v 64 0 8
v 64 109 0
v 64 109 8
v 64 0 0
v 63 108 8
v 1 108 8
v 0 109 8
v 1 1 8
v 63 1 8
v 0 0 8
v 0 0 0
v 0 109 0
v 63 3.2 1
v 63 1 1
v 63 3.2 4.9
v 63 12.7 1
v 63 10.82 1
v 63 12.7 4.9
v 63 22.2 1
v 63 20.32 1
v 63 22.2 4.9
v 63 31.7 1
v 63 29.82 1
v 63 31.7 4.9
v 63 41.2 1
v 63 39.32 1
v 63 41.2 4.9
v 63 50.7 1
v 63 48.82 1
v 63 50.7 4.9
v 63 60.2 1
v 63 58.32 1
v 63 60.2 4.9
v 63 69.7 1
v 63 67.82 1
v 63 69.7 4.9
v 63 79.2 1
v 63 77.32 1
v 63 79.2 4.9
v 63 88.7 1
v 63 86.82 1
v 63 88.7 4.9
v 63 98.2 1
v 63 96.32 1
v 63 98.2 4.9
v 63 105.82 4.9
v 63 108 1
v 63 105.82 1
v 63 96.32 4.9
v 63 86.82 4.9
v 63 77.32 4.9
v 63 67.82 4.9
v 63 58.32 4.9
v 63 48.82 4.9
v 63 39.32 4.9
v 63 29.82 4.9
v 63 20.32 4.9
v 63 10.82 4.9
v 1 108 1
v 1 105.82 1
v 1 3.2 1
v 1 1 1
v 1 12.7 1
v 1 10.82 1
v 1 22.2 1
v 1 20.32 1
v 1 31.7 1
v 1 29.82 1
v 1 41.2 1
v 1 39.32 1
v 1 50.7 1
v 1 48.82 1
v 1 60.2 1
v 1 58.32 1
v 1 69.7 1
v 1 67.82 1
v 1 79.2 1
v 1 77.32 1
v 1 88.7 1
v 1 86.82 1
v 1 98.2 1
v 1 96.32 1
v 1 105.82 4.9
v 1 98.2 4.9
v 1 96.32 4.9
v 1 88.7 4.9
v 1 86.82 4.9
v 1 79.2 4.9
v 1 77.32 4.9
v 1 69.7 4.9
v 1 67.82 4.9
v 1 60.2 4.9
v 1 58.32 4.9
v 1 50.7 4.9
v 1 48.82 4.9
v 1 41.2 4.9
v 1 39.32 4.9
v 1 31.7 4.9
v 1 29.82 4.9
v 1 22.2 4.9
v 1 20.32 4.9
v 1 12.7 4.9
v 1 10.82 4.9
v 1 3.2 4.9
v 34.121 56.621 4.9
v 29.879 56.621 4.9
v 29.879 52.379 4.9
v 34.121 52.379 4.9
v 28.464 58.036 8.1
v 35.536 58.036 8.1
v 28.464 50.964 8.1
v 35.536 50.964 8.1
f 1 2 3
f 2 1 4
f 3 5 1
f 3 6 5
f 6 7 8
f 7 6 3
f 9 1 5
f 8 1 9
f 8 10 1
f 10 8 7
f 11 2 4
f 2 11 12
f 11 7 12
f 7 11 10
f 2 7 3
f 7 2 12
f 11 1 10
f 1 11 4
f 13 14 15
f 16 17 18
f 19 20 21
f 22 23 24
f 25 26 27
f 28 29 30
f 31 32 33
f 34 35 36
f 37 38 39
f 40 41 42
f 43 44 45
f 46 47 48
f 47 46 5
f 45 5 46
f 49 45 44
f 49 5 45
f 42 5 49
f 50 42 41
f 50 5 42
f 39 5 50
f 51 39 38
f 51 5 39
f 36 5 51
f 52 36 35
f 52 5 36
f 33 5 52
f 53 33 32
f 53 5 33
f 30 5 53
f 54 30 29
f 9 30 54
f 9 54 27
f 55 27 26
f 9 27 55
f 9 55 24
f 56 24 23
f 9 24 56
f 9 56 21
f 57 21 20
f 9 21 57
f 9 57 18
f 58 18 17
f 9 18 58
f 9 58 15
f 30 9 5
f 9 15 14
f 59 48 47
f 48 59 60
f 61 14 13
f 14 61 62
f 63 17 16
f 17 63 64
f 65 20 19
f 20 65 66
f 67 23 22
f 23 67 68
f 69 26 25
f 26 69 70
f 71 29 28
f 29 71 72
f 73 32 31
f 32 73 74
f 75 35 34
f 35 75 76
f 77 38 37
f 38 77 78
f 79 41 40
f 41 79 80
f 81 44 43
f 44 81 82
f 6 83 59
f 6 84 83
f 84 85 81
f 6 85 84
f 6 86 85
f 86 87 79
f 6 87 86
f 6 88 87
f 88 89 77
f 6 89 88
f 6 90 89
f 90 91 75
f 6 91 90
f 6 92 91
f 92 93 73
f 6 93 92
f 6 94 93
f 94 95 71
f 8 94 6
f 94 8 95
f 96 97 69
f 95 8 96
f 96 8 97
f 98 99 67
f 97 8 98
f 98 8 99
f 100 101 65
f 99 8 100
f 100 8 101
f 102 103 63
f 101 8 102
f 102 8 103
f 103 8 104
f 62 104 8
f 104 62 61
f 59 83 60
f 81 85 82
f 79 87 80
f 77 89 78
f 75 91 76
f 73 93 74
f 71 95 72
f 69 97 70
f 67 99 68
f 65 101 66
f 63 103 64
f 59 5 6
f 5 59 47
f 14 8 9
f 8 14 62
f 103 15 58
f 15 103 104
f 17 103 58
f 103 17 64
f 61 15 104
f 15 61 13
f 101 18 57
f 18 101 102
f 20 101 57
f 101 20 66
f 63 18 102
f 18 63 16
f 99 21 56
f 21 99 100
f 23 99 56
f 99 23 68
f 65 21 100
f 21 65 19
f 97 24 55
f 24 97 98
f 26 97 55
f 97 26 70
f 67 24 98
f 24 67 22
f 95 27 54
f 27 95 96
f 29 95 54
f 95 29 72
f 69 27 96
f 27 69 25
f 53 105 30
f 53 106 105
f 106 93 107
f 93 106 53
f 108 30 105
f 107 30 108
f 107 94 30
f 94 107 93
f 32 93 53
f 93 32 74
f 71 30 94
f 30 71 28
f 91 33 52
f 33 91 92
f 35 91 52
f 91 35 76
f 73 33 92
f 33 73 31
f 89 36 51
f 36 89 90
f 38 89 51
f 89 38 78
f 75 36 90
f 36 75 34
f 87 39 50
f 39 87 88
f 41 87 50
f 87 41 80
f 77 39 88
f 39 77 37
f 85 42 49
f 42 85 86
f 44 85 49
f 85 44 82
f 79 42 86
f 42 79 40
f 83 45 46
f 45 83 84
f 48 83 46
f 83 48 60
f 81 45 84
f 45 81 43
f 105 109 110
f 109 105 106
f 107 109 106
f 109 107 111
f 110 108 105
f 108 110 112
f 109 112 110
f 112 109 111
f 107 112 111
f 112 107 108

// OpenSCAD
eps = 0.1;
eps2 = eps + eps;


breite = 64;
tiefe = 109;
hoehe = 8;
innen = hoehe - 1;

wand = 1;
wand2 = wand + wand;


// Auflage für Schaltkreise
module dip_schiene(n)
{
    midspace = 0;//5;
    start = 3.2;
    
    ms = ( n > 4) ? midspace : 0;
     
    translate([0, start + ms + 9.5*n, wand-eps]) cube([ breite, 7.62, 4]);
}

// Anfasser
module grab2()
{
    $fn = 4;
    
    translate([ breite/2, tiefe/2, eps])
    
    rotate([ 0, 0, 45])
    cylinder( h = hoehe, r1 = 0, r2 = 5);
}

    
// alles zusammenbauen
difference()
{
    union()
    {
        difference()
        {
        // Hauptkörper
        cube([ breite, tiefe, hoehe]);
            
        // Innenkörper
        translate([ wand, wand, hoehe-innen]) cube([ breite-wand2, tiefe-wand2, innen+eps]);
        }
    
        for(i = [0:10])
        {
            dip_schiene(i);
        }
    }
}

grab2();
